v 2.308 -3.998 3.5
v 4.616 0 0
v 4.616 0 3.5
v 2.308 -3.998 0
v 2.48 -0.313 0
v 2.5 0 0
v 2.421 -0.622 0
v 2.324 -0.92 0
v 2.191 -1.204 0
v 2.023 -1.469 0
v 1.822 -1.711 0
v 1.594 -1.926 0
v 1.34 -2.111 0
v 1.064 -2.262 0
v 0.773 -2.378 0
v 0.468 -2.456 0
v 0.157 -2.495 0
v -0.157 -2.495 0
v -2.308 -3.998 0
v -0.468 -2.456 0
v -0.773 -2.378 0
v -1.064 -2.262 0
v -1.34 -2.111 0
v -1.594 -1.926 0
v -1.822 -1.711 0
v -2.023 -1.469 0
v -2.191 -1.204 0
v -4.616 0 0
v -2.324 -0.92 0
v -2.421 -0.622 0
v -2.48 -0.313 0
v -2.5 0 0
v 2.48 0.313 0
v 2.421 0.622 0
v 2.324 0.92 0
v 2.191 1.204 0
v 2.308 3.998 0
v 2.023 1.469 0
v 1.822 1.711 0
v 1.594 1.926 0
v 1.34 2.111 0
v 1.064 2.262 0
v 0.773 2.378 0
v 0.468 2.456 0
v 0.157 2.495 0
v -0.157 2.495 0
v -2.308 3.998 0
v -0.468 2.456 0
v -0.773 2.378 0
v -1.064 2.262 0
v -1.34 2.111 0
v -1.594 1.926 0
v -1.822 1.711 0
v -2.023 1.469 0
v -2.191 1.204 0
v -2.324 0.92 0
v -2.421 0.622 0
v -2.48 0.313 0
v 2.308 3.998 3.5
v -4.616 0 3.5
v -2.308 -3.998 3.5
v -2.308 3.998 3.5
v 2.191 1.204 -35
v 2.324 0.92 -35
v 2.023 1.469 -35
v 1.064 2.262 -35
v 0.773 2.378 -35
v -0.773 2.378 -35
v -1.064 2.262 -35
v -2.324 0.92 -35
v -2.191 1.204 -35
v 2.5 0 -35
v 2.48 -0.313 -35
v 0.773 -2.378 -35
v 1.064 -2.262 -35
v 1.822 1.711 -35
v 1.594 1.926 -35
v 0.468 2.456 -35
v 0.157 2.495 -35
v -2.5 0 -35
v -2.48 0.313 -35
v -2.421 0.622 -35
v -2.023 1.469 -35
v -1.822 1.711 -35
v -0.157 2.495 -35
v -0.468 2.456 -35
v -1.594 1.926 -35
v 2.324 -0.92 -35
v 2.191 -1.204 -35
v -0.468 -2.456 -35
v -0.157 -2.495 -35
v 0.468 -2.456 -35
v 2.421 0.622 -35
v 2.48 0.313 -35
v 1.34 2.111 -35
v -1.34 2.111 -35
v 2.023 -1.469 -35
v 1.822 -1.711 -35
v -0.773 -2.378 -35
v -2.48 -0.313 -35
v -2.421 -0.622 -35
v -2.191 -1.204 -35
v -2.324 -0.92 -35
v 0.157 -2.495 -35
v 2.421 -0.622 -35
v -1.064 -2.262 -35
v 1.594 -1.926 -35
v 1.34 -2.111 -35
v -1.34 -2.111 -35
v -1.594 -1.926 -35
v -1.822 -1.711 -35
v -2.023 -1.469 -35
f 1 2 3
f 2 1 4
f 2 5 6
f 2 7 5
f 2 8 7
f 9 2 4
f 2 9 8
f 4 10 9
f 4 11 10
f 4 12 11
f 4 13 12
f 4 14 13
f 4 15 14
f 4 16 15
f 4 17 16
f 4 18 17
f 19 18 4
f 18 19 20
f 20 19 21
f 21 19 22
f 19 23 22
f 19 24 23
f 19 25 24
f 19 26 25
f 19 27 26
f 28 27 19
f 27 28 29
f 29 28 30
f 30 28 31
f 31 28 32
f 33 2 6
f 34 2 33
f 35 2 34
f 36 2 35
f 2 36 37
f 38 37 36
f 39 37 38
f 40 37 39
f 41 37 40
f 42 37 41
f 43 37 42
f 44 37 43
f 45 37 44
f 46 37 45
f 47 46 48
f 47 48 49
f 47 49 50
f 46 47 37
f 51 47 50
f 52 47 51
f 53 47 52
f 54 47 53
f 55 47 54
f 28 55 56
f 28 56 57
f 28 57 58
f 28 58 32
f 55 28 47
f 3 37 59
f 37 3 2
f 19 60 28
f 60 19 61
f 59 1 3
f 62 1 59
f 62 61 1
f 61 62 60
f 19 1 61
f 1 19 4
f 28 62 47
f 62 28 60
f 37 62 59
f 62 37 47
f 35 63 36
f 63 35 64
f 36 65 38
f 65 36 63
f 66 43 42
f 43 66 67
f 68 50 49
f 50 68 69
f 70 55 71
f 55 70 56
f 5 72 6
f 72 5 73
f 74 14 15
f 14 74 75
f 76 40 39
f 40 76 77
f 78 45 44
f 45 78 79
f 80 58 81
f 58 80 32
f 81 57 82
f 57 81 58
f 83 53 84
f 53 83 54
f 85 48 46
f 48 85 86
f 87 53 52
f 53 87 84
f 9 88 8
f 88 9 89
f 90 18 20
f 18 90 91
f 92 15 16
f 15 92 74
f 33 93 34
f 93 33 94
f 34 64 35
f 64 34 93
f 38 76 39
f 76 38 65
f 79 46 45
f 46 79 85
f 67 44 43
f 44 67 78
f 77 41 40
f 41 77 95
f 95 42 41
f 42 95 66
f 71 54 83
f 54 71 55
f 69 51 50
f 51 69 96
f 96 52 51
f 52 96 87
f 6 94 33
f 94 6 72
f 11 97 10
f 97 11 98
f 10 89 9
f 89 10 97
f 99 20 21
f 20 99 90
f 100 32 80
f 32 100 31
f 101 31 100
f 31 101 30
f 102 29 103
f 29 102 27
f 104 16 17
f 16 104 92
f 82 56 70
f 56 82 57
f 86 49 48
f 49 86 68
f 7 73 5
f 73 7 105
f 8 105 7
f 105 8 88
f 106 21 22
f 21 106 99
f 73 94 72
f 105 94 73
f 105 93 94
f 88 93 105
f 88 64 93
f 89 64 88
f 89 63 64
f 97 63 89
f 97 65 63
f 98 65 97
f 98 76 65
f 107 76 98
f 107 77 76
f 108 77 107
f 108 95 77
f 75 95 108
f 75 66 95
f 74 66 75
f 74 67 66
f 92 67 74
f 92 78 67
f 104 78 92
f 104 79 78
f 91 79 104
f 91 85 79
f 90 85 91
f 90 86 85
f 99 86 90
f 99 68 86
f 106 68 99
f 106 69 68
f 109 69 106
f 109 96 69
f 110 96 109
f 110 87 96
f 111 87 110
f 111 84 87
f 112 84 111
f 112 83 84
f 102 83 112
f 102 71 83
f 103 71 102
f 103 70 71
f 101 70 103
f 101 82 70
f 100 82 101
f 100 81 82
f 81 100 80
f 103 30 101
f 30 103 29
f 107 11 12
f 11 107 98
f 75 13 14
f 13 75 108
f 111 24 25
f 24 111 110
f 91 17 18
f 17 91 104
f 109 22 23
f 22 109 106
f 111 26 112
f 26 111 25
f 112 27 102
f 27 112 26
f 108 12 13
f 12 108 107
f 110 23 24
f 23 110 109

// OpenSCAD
$fn = 50;


difference() {
	union() {
		translate(v = [0, 0, 0]) {
			rotate(a = [0, 0, 0]) {
				translate(v = [0, 0, 0]) {
					rotate(a = [0, 0, 0]) {
						linear_extrude(height = 3.5000000000) {
							polygon(points = [[4.6160000000, 0.0000000000], [2.3080000000, 3.9975732639], [-2.3080000000, 3.9975732639], [-4.6160000000, 0.0000000000], [-2.3080000000, -3.9975732639], [2.3080000000, -3.9975732639]]);
						}
					}
				}
			}
		}
		translate(v = [0, 0, -35]) {
			rotate(a = [0, 0, 0]) {
				cylinder(h = 35, r = 2.5000000000);
			}
		}
	}
	union();
}
